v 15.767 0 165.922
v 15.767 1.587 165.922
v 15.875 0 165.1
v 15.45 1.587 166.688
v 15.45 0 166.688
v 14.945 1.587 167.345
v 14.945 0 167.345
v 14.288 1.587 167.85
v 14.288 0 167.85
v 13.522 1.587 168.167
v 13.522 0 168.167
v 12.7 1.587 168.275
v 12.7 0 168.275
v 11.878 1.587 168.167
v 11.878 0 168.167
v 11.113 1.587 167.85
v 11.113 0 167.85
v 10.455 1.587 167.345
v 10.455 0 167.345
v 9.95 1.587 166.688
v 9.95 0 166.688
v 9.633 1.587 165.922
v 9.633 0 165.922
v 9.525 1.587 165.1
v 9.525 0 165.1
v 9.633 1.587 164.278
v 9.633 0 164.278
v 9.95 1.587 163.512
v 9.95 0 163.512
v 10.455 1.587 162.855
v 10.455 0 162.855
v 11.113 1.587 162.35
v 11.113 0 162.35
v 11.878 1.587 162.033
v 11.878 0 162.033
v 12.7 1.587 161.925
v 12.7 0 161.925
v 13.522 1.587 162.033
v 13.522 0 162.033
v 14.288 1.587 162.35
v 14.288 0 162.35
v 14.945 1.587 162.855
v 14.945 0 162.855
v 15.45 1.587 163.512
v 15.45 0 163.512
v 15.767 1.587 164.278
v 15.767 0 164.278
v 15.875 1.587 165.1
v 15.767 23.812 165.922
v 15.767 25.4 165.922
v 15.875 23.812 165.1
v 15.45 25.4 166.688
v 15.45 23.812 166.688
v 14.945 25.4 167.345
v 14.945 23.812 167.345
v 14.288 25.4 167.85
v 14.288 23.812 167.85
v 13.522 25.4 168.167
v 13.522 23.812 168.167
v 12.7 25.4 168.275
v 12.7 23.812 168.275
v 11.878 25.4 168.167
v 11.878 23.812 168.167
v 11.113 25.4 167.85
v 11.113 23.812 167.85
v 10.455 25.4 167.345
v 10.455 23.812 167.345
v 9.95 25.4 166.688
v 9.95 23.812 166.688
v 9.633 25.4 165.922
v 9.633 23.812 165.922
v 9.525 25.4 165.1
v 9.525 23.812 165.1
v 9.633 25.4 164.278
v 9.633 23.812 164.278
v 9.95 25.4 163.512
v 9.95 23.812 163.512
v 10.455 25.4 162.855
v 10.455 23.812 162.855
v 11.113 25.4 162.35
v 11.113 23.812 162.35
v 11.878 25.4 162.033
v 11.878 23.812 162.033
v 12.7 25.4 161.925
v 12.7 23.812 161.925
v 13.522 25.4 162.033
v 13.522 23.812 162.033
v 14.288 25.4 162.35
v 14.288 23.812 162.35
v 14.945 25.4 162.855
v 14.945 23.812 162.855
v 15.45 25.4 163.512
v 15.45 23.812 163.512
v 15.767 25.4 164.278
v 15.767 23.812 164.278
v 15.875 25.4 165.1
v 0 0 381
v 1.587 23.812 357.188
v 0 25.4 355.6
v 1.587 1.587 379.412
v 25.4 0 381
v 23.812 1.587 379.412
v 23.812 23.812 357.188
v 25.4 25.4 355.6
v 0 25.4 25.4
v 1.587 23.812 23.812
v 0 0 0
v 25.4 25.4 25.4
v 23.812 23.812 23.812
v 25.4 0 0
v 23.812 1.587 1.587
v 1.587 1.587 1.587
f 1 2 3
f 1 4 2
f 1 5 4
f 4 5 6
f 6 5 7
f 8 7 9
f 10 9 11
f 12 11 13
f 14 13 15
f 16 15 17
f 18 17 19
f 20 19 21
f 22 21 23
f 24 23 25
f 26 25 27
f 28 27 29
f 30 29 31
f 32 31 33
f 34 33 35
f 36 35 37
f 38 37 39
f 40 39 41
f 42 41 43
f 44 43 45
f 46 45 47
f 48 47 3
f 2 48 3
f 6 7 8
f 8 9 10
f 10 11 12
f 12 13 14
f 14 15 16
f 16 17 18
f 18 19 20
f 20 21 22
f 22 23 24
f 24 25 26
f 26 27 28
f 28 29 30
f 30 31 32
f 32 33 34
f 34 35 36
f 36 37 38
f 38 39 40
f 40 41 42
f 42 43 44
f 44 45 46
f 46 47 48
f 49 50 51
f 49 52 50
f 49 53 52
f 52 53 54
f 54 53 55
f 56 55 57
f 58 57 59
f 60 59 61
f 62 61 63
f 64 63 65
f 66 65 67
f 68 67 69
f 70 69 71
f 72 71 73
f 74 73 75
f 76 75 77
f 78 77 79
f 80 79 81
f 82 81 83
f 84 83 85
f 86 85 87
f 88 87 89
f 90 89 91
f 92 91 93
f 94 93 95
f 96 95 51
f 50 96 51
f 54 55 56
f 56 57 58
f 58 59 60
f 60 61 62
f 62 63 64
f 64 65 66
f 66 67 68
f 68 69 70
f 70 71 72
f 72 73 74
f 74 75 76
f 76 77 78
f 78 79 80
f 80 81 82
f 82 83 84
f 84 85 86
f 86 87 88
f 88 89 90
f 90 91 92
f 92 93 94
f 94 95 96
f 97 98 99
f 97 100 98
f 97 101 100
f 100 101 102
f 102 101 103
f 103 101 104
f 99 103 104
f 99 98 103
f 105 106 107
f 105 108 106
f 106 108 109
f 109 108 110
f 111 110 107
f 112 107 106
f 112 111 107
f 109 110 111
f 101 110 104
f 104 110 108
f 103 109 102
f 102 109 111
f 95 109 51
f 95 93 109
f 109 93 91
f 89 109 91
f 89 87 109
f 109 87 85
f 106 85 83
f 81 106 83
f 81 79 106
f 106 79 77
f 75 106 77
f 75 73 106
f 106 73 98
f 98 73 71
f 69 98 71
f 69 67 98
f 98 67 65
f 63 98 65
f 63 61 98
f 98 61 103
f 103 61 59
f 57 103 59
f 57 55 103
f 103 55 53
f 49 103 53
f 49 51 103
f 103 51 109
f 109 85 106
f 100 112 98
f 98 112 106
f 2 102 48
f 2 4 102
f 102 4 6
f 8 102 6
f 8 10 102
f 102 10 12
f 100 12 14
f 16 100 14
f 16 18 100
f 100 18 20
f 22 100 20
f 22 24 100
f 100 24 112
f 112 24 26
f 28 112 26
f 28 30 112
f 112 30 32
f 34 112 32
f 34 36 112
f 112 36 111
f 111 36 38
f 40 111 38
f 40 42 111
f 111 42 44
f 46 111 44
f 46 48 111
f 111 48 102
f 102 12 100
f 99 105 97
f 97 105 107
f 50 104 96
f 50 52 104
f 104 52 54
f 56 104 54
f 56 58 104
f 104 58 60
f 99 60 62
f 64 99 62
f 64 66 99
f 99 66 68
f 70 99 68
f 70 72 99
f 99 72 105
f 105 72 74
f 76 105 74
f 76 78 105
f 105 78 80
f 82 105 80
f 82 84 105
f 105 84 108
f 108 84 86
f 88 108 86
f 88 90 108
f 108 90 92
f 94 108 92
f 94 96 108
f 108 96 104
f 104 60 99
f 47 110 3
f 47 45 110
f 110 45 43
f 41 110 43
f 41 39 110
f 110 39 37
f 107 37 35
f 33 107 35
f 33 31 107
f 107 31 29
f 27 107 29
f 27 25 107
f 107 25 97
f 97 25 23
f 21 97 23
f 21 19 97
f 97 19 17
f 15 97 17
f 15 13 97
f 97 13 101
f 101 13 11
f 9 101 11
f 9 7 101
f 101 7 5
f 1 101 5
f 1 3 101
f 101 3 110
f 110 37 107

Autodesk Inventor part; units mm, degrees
ref_plane "YZ Plane" through (0, 0, 0) normal (1, 0, 0) x (0, 1, 0)
ref_plane "XZ Plane" through (0, 0, 0) normal (0, 1, 0) x (-1, 0, 0)
ref_plane "XY Plane" through (0, 0, 0) normal (0, 0, 1) x (1, 0, 0)
sketch "Sketch1" plane through (0, 0, 0) normal (0, 0, 1) x (1, 0, 0)
  line L0 (0, 0) -> (25.4, 0)
  line L1 (25.4, 0) -> (25.4, 25.4)
  line L2 (25.4, 25.4) -> (0, 25.4)
  line L3 (0, 25.4) -> (0, 0)
  dimension "d0" = 25.4
  dimension "d1" = 25.4
extrude "Extrusion1" add sketch "Sketch1" along normal blind 381
shell "Shell1" thickness 1.5875 removed faces 2 at (16.9333, 16.9333, 0) at (16.9333, 16.9333, 381)
sketch "Sketch2" plane through (25.4, 0, 0) normal (1, 0, 0) x (0, 0, -1)
  line L0 (-381, 25.4) -> (-381, 0) projected
  line L1 (0, 0) -> (0, 25.4) projected
  line L2 (0, 25.4) -> (-381, 25.4) projected
  line L3 (-381, 0) -> (-355.6, 25.4)
  line L4 (-381, 25.4) -> (-381, 0)
  line L5 (-381, 25.4) -> (-355.6, 25.4)
  line L6 (0, 25.4) -> (-25.4, 25.4)
  line L7 (0, 0) -> (-25.4, 25.4)
  line L8 (0, 0) -> (0, 25.4)
  dimension "d6" = 45
  dimension "d7" = 45
extrude "Extrusion2" cut sketch "Sketch2" against normal through all
sketch "Sketch3" plane through (0, 25.4, 355.6) normal (0, 1, 0) x (1, 0, 0)
  line L0 (25.4, 330.2) -> (25.4, 0) projected
  line L1 (25.4, 330.2) -> (0, 330.2) projected
  circle A0 centre (12.7, 190.5) radius 3.175
  point P0 (0, 355.6)
  dimension "d10" = 6.35
  dimension "d11" = 12.7
  dimension "d12" = 139.7
extrude "Extrusion3" cut sketch "Sketch3" against normal through all
properties part number "Frame_RearLowerAngleSupport"
